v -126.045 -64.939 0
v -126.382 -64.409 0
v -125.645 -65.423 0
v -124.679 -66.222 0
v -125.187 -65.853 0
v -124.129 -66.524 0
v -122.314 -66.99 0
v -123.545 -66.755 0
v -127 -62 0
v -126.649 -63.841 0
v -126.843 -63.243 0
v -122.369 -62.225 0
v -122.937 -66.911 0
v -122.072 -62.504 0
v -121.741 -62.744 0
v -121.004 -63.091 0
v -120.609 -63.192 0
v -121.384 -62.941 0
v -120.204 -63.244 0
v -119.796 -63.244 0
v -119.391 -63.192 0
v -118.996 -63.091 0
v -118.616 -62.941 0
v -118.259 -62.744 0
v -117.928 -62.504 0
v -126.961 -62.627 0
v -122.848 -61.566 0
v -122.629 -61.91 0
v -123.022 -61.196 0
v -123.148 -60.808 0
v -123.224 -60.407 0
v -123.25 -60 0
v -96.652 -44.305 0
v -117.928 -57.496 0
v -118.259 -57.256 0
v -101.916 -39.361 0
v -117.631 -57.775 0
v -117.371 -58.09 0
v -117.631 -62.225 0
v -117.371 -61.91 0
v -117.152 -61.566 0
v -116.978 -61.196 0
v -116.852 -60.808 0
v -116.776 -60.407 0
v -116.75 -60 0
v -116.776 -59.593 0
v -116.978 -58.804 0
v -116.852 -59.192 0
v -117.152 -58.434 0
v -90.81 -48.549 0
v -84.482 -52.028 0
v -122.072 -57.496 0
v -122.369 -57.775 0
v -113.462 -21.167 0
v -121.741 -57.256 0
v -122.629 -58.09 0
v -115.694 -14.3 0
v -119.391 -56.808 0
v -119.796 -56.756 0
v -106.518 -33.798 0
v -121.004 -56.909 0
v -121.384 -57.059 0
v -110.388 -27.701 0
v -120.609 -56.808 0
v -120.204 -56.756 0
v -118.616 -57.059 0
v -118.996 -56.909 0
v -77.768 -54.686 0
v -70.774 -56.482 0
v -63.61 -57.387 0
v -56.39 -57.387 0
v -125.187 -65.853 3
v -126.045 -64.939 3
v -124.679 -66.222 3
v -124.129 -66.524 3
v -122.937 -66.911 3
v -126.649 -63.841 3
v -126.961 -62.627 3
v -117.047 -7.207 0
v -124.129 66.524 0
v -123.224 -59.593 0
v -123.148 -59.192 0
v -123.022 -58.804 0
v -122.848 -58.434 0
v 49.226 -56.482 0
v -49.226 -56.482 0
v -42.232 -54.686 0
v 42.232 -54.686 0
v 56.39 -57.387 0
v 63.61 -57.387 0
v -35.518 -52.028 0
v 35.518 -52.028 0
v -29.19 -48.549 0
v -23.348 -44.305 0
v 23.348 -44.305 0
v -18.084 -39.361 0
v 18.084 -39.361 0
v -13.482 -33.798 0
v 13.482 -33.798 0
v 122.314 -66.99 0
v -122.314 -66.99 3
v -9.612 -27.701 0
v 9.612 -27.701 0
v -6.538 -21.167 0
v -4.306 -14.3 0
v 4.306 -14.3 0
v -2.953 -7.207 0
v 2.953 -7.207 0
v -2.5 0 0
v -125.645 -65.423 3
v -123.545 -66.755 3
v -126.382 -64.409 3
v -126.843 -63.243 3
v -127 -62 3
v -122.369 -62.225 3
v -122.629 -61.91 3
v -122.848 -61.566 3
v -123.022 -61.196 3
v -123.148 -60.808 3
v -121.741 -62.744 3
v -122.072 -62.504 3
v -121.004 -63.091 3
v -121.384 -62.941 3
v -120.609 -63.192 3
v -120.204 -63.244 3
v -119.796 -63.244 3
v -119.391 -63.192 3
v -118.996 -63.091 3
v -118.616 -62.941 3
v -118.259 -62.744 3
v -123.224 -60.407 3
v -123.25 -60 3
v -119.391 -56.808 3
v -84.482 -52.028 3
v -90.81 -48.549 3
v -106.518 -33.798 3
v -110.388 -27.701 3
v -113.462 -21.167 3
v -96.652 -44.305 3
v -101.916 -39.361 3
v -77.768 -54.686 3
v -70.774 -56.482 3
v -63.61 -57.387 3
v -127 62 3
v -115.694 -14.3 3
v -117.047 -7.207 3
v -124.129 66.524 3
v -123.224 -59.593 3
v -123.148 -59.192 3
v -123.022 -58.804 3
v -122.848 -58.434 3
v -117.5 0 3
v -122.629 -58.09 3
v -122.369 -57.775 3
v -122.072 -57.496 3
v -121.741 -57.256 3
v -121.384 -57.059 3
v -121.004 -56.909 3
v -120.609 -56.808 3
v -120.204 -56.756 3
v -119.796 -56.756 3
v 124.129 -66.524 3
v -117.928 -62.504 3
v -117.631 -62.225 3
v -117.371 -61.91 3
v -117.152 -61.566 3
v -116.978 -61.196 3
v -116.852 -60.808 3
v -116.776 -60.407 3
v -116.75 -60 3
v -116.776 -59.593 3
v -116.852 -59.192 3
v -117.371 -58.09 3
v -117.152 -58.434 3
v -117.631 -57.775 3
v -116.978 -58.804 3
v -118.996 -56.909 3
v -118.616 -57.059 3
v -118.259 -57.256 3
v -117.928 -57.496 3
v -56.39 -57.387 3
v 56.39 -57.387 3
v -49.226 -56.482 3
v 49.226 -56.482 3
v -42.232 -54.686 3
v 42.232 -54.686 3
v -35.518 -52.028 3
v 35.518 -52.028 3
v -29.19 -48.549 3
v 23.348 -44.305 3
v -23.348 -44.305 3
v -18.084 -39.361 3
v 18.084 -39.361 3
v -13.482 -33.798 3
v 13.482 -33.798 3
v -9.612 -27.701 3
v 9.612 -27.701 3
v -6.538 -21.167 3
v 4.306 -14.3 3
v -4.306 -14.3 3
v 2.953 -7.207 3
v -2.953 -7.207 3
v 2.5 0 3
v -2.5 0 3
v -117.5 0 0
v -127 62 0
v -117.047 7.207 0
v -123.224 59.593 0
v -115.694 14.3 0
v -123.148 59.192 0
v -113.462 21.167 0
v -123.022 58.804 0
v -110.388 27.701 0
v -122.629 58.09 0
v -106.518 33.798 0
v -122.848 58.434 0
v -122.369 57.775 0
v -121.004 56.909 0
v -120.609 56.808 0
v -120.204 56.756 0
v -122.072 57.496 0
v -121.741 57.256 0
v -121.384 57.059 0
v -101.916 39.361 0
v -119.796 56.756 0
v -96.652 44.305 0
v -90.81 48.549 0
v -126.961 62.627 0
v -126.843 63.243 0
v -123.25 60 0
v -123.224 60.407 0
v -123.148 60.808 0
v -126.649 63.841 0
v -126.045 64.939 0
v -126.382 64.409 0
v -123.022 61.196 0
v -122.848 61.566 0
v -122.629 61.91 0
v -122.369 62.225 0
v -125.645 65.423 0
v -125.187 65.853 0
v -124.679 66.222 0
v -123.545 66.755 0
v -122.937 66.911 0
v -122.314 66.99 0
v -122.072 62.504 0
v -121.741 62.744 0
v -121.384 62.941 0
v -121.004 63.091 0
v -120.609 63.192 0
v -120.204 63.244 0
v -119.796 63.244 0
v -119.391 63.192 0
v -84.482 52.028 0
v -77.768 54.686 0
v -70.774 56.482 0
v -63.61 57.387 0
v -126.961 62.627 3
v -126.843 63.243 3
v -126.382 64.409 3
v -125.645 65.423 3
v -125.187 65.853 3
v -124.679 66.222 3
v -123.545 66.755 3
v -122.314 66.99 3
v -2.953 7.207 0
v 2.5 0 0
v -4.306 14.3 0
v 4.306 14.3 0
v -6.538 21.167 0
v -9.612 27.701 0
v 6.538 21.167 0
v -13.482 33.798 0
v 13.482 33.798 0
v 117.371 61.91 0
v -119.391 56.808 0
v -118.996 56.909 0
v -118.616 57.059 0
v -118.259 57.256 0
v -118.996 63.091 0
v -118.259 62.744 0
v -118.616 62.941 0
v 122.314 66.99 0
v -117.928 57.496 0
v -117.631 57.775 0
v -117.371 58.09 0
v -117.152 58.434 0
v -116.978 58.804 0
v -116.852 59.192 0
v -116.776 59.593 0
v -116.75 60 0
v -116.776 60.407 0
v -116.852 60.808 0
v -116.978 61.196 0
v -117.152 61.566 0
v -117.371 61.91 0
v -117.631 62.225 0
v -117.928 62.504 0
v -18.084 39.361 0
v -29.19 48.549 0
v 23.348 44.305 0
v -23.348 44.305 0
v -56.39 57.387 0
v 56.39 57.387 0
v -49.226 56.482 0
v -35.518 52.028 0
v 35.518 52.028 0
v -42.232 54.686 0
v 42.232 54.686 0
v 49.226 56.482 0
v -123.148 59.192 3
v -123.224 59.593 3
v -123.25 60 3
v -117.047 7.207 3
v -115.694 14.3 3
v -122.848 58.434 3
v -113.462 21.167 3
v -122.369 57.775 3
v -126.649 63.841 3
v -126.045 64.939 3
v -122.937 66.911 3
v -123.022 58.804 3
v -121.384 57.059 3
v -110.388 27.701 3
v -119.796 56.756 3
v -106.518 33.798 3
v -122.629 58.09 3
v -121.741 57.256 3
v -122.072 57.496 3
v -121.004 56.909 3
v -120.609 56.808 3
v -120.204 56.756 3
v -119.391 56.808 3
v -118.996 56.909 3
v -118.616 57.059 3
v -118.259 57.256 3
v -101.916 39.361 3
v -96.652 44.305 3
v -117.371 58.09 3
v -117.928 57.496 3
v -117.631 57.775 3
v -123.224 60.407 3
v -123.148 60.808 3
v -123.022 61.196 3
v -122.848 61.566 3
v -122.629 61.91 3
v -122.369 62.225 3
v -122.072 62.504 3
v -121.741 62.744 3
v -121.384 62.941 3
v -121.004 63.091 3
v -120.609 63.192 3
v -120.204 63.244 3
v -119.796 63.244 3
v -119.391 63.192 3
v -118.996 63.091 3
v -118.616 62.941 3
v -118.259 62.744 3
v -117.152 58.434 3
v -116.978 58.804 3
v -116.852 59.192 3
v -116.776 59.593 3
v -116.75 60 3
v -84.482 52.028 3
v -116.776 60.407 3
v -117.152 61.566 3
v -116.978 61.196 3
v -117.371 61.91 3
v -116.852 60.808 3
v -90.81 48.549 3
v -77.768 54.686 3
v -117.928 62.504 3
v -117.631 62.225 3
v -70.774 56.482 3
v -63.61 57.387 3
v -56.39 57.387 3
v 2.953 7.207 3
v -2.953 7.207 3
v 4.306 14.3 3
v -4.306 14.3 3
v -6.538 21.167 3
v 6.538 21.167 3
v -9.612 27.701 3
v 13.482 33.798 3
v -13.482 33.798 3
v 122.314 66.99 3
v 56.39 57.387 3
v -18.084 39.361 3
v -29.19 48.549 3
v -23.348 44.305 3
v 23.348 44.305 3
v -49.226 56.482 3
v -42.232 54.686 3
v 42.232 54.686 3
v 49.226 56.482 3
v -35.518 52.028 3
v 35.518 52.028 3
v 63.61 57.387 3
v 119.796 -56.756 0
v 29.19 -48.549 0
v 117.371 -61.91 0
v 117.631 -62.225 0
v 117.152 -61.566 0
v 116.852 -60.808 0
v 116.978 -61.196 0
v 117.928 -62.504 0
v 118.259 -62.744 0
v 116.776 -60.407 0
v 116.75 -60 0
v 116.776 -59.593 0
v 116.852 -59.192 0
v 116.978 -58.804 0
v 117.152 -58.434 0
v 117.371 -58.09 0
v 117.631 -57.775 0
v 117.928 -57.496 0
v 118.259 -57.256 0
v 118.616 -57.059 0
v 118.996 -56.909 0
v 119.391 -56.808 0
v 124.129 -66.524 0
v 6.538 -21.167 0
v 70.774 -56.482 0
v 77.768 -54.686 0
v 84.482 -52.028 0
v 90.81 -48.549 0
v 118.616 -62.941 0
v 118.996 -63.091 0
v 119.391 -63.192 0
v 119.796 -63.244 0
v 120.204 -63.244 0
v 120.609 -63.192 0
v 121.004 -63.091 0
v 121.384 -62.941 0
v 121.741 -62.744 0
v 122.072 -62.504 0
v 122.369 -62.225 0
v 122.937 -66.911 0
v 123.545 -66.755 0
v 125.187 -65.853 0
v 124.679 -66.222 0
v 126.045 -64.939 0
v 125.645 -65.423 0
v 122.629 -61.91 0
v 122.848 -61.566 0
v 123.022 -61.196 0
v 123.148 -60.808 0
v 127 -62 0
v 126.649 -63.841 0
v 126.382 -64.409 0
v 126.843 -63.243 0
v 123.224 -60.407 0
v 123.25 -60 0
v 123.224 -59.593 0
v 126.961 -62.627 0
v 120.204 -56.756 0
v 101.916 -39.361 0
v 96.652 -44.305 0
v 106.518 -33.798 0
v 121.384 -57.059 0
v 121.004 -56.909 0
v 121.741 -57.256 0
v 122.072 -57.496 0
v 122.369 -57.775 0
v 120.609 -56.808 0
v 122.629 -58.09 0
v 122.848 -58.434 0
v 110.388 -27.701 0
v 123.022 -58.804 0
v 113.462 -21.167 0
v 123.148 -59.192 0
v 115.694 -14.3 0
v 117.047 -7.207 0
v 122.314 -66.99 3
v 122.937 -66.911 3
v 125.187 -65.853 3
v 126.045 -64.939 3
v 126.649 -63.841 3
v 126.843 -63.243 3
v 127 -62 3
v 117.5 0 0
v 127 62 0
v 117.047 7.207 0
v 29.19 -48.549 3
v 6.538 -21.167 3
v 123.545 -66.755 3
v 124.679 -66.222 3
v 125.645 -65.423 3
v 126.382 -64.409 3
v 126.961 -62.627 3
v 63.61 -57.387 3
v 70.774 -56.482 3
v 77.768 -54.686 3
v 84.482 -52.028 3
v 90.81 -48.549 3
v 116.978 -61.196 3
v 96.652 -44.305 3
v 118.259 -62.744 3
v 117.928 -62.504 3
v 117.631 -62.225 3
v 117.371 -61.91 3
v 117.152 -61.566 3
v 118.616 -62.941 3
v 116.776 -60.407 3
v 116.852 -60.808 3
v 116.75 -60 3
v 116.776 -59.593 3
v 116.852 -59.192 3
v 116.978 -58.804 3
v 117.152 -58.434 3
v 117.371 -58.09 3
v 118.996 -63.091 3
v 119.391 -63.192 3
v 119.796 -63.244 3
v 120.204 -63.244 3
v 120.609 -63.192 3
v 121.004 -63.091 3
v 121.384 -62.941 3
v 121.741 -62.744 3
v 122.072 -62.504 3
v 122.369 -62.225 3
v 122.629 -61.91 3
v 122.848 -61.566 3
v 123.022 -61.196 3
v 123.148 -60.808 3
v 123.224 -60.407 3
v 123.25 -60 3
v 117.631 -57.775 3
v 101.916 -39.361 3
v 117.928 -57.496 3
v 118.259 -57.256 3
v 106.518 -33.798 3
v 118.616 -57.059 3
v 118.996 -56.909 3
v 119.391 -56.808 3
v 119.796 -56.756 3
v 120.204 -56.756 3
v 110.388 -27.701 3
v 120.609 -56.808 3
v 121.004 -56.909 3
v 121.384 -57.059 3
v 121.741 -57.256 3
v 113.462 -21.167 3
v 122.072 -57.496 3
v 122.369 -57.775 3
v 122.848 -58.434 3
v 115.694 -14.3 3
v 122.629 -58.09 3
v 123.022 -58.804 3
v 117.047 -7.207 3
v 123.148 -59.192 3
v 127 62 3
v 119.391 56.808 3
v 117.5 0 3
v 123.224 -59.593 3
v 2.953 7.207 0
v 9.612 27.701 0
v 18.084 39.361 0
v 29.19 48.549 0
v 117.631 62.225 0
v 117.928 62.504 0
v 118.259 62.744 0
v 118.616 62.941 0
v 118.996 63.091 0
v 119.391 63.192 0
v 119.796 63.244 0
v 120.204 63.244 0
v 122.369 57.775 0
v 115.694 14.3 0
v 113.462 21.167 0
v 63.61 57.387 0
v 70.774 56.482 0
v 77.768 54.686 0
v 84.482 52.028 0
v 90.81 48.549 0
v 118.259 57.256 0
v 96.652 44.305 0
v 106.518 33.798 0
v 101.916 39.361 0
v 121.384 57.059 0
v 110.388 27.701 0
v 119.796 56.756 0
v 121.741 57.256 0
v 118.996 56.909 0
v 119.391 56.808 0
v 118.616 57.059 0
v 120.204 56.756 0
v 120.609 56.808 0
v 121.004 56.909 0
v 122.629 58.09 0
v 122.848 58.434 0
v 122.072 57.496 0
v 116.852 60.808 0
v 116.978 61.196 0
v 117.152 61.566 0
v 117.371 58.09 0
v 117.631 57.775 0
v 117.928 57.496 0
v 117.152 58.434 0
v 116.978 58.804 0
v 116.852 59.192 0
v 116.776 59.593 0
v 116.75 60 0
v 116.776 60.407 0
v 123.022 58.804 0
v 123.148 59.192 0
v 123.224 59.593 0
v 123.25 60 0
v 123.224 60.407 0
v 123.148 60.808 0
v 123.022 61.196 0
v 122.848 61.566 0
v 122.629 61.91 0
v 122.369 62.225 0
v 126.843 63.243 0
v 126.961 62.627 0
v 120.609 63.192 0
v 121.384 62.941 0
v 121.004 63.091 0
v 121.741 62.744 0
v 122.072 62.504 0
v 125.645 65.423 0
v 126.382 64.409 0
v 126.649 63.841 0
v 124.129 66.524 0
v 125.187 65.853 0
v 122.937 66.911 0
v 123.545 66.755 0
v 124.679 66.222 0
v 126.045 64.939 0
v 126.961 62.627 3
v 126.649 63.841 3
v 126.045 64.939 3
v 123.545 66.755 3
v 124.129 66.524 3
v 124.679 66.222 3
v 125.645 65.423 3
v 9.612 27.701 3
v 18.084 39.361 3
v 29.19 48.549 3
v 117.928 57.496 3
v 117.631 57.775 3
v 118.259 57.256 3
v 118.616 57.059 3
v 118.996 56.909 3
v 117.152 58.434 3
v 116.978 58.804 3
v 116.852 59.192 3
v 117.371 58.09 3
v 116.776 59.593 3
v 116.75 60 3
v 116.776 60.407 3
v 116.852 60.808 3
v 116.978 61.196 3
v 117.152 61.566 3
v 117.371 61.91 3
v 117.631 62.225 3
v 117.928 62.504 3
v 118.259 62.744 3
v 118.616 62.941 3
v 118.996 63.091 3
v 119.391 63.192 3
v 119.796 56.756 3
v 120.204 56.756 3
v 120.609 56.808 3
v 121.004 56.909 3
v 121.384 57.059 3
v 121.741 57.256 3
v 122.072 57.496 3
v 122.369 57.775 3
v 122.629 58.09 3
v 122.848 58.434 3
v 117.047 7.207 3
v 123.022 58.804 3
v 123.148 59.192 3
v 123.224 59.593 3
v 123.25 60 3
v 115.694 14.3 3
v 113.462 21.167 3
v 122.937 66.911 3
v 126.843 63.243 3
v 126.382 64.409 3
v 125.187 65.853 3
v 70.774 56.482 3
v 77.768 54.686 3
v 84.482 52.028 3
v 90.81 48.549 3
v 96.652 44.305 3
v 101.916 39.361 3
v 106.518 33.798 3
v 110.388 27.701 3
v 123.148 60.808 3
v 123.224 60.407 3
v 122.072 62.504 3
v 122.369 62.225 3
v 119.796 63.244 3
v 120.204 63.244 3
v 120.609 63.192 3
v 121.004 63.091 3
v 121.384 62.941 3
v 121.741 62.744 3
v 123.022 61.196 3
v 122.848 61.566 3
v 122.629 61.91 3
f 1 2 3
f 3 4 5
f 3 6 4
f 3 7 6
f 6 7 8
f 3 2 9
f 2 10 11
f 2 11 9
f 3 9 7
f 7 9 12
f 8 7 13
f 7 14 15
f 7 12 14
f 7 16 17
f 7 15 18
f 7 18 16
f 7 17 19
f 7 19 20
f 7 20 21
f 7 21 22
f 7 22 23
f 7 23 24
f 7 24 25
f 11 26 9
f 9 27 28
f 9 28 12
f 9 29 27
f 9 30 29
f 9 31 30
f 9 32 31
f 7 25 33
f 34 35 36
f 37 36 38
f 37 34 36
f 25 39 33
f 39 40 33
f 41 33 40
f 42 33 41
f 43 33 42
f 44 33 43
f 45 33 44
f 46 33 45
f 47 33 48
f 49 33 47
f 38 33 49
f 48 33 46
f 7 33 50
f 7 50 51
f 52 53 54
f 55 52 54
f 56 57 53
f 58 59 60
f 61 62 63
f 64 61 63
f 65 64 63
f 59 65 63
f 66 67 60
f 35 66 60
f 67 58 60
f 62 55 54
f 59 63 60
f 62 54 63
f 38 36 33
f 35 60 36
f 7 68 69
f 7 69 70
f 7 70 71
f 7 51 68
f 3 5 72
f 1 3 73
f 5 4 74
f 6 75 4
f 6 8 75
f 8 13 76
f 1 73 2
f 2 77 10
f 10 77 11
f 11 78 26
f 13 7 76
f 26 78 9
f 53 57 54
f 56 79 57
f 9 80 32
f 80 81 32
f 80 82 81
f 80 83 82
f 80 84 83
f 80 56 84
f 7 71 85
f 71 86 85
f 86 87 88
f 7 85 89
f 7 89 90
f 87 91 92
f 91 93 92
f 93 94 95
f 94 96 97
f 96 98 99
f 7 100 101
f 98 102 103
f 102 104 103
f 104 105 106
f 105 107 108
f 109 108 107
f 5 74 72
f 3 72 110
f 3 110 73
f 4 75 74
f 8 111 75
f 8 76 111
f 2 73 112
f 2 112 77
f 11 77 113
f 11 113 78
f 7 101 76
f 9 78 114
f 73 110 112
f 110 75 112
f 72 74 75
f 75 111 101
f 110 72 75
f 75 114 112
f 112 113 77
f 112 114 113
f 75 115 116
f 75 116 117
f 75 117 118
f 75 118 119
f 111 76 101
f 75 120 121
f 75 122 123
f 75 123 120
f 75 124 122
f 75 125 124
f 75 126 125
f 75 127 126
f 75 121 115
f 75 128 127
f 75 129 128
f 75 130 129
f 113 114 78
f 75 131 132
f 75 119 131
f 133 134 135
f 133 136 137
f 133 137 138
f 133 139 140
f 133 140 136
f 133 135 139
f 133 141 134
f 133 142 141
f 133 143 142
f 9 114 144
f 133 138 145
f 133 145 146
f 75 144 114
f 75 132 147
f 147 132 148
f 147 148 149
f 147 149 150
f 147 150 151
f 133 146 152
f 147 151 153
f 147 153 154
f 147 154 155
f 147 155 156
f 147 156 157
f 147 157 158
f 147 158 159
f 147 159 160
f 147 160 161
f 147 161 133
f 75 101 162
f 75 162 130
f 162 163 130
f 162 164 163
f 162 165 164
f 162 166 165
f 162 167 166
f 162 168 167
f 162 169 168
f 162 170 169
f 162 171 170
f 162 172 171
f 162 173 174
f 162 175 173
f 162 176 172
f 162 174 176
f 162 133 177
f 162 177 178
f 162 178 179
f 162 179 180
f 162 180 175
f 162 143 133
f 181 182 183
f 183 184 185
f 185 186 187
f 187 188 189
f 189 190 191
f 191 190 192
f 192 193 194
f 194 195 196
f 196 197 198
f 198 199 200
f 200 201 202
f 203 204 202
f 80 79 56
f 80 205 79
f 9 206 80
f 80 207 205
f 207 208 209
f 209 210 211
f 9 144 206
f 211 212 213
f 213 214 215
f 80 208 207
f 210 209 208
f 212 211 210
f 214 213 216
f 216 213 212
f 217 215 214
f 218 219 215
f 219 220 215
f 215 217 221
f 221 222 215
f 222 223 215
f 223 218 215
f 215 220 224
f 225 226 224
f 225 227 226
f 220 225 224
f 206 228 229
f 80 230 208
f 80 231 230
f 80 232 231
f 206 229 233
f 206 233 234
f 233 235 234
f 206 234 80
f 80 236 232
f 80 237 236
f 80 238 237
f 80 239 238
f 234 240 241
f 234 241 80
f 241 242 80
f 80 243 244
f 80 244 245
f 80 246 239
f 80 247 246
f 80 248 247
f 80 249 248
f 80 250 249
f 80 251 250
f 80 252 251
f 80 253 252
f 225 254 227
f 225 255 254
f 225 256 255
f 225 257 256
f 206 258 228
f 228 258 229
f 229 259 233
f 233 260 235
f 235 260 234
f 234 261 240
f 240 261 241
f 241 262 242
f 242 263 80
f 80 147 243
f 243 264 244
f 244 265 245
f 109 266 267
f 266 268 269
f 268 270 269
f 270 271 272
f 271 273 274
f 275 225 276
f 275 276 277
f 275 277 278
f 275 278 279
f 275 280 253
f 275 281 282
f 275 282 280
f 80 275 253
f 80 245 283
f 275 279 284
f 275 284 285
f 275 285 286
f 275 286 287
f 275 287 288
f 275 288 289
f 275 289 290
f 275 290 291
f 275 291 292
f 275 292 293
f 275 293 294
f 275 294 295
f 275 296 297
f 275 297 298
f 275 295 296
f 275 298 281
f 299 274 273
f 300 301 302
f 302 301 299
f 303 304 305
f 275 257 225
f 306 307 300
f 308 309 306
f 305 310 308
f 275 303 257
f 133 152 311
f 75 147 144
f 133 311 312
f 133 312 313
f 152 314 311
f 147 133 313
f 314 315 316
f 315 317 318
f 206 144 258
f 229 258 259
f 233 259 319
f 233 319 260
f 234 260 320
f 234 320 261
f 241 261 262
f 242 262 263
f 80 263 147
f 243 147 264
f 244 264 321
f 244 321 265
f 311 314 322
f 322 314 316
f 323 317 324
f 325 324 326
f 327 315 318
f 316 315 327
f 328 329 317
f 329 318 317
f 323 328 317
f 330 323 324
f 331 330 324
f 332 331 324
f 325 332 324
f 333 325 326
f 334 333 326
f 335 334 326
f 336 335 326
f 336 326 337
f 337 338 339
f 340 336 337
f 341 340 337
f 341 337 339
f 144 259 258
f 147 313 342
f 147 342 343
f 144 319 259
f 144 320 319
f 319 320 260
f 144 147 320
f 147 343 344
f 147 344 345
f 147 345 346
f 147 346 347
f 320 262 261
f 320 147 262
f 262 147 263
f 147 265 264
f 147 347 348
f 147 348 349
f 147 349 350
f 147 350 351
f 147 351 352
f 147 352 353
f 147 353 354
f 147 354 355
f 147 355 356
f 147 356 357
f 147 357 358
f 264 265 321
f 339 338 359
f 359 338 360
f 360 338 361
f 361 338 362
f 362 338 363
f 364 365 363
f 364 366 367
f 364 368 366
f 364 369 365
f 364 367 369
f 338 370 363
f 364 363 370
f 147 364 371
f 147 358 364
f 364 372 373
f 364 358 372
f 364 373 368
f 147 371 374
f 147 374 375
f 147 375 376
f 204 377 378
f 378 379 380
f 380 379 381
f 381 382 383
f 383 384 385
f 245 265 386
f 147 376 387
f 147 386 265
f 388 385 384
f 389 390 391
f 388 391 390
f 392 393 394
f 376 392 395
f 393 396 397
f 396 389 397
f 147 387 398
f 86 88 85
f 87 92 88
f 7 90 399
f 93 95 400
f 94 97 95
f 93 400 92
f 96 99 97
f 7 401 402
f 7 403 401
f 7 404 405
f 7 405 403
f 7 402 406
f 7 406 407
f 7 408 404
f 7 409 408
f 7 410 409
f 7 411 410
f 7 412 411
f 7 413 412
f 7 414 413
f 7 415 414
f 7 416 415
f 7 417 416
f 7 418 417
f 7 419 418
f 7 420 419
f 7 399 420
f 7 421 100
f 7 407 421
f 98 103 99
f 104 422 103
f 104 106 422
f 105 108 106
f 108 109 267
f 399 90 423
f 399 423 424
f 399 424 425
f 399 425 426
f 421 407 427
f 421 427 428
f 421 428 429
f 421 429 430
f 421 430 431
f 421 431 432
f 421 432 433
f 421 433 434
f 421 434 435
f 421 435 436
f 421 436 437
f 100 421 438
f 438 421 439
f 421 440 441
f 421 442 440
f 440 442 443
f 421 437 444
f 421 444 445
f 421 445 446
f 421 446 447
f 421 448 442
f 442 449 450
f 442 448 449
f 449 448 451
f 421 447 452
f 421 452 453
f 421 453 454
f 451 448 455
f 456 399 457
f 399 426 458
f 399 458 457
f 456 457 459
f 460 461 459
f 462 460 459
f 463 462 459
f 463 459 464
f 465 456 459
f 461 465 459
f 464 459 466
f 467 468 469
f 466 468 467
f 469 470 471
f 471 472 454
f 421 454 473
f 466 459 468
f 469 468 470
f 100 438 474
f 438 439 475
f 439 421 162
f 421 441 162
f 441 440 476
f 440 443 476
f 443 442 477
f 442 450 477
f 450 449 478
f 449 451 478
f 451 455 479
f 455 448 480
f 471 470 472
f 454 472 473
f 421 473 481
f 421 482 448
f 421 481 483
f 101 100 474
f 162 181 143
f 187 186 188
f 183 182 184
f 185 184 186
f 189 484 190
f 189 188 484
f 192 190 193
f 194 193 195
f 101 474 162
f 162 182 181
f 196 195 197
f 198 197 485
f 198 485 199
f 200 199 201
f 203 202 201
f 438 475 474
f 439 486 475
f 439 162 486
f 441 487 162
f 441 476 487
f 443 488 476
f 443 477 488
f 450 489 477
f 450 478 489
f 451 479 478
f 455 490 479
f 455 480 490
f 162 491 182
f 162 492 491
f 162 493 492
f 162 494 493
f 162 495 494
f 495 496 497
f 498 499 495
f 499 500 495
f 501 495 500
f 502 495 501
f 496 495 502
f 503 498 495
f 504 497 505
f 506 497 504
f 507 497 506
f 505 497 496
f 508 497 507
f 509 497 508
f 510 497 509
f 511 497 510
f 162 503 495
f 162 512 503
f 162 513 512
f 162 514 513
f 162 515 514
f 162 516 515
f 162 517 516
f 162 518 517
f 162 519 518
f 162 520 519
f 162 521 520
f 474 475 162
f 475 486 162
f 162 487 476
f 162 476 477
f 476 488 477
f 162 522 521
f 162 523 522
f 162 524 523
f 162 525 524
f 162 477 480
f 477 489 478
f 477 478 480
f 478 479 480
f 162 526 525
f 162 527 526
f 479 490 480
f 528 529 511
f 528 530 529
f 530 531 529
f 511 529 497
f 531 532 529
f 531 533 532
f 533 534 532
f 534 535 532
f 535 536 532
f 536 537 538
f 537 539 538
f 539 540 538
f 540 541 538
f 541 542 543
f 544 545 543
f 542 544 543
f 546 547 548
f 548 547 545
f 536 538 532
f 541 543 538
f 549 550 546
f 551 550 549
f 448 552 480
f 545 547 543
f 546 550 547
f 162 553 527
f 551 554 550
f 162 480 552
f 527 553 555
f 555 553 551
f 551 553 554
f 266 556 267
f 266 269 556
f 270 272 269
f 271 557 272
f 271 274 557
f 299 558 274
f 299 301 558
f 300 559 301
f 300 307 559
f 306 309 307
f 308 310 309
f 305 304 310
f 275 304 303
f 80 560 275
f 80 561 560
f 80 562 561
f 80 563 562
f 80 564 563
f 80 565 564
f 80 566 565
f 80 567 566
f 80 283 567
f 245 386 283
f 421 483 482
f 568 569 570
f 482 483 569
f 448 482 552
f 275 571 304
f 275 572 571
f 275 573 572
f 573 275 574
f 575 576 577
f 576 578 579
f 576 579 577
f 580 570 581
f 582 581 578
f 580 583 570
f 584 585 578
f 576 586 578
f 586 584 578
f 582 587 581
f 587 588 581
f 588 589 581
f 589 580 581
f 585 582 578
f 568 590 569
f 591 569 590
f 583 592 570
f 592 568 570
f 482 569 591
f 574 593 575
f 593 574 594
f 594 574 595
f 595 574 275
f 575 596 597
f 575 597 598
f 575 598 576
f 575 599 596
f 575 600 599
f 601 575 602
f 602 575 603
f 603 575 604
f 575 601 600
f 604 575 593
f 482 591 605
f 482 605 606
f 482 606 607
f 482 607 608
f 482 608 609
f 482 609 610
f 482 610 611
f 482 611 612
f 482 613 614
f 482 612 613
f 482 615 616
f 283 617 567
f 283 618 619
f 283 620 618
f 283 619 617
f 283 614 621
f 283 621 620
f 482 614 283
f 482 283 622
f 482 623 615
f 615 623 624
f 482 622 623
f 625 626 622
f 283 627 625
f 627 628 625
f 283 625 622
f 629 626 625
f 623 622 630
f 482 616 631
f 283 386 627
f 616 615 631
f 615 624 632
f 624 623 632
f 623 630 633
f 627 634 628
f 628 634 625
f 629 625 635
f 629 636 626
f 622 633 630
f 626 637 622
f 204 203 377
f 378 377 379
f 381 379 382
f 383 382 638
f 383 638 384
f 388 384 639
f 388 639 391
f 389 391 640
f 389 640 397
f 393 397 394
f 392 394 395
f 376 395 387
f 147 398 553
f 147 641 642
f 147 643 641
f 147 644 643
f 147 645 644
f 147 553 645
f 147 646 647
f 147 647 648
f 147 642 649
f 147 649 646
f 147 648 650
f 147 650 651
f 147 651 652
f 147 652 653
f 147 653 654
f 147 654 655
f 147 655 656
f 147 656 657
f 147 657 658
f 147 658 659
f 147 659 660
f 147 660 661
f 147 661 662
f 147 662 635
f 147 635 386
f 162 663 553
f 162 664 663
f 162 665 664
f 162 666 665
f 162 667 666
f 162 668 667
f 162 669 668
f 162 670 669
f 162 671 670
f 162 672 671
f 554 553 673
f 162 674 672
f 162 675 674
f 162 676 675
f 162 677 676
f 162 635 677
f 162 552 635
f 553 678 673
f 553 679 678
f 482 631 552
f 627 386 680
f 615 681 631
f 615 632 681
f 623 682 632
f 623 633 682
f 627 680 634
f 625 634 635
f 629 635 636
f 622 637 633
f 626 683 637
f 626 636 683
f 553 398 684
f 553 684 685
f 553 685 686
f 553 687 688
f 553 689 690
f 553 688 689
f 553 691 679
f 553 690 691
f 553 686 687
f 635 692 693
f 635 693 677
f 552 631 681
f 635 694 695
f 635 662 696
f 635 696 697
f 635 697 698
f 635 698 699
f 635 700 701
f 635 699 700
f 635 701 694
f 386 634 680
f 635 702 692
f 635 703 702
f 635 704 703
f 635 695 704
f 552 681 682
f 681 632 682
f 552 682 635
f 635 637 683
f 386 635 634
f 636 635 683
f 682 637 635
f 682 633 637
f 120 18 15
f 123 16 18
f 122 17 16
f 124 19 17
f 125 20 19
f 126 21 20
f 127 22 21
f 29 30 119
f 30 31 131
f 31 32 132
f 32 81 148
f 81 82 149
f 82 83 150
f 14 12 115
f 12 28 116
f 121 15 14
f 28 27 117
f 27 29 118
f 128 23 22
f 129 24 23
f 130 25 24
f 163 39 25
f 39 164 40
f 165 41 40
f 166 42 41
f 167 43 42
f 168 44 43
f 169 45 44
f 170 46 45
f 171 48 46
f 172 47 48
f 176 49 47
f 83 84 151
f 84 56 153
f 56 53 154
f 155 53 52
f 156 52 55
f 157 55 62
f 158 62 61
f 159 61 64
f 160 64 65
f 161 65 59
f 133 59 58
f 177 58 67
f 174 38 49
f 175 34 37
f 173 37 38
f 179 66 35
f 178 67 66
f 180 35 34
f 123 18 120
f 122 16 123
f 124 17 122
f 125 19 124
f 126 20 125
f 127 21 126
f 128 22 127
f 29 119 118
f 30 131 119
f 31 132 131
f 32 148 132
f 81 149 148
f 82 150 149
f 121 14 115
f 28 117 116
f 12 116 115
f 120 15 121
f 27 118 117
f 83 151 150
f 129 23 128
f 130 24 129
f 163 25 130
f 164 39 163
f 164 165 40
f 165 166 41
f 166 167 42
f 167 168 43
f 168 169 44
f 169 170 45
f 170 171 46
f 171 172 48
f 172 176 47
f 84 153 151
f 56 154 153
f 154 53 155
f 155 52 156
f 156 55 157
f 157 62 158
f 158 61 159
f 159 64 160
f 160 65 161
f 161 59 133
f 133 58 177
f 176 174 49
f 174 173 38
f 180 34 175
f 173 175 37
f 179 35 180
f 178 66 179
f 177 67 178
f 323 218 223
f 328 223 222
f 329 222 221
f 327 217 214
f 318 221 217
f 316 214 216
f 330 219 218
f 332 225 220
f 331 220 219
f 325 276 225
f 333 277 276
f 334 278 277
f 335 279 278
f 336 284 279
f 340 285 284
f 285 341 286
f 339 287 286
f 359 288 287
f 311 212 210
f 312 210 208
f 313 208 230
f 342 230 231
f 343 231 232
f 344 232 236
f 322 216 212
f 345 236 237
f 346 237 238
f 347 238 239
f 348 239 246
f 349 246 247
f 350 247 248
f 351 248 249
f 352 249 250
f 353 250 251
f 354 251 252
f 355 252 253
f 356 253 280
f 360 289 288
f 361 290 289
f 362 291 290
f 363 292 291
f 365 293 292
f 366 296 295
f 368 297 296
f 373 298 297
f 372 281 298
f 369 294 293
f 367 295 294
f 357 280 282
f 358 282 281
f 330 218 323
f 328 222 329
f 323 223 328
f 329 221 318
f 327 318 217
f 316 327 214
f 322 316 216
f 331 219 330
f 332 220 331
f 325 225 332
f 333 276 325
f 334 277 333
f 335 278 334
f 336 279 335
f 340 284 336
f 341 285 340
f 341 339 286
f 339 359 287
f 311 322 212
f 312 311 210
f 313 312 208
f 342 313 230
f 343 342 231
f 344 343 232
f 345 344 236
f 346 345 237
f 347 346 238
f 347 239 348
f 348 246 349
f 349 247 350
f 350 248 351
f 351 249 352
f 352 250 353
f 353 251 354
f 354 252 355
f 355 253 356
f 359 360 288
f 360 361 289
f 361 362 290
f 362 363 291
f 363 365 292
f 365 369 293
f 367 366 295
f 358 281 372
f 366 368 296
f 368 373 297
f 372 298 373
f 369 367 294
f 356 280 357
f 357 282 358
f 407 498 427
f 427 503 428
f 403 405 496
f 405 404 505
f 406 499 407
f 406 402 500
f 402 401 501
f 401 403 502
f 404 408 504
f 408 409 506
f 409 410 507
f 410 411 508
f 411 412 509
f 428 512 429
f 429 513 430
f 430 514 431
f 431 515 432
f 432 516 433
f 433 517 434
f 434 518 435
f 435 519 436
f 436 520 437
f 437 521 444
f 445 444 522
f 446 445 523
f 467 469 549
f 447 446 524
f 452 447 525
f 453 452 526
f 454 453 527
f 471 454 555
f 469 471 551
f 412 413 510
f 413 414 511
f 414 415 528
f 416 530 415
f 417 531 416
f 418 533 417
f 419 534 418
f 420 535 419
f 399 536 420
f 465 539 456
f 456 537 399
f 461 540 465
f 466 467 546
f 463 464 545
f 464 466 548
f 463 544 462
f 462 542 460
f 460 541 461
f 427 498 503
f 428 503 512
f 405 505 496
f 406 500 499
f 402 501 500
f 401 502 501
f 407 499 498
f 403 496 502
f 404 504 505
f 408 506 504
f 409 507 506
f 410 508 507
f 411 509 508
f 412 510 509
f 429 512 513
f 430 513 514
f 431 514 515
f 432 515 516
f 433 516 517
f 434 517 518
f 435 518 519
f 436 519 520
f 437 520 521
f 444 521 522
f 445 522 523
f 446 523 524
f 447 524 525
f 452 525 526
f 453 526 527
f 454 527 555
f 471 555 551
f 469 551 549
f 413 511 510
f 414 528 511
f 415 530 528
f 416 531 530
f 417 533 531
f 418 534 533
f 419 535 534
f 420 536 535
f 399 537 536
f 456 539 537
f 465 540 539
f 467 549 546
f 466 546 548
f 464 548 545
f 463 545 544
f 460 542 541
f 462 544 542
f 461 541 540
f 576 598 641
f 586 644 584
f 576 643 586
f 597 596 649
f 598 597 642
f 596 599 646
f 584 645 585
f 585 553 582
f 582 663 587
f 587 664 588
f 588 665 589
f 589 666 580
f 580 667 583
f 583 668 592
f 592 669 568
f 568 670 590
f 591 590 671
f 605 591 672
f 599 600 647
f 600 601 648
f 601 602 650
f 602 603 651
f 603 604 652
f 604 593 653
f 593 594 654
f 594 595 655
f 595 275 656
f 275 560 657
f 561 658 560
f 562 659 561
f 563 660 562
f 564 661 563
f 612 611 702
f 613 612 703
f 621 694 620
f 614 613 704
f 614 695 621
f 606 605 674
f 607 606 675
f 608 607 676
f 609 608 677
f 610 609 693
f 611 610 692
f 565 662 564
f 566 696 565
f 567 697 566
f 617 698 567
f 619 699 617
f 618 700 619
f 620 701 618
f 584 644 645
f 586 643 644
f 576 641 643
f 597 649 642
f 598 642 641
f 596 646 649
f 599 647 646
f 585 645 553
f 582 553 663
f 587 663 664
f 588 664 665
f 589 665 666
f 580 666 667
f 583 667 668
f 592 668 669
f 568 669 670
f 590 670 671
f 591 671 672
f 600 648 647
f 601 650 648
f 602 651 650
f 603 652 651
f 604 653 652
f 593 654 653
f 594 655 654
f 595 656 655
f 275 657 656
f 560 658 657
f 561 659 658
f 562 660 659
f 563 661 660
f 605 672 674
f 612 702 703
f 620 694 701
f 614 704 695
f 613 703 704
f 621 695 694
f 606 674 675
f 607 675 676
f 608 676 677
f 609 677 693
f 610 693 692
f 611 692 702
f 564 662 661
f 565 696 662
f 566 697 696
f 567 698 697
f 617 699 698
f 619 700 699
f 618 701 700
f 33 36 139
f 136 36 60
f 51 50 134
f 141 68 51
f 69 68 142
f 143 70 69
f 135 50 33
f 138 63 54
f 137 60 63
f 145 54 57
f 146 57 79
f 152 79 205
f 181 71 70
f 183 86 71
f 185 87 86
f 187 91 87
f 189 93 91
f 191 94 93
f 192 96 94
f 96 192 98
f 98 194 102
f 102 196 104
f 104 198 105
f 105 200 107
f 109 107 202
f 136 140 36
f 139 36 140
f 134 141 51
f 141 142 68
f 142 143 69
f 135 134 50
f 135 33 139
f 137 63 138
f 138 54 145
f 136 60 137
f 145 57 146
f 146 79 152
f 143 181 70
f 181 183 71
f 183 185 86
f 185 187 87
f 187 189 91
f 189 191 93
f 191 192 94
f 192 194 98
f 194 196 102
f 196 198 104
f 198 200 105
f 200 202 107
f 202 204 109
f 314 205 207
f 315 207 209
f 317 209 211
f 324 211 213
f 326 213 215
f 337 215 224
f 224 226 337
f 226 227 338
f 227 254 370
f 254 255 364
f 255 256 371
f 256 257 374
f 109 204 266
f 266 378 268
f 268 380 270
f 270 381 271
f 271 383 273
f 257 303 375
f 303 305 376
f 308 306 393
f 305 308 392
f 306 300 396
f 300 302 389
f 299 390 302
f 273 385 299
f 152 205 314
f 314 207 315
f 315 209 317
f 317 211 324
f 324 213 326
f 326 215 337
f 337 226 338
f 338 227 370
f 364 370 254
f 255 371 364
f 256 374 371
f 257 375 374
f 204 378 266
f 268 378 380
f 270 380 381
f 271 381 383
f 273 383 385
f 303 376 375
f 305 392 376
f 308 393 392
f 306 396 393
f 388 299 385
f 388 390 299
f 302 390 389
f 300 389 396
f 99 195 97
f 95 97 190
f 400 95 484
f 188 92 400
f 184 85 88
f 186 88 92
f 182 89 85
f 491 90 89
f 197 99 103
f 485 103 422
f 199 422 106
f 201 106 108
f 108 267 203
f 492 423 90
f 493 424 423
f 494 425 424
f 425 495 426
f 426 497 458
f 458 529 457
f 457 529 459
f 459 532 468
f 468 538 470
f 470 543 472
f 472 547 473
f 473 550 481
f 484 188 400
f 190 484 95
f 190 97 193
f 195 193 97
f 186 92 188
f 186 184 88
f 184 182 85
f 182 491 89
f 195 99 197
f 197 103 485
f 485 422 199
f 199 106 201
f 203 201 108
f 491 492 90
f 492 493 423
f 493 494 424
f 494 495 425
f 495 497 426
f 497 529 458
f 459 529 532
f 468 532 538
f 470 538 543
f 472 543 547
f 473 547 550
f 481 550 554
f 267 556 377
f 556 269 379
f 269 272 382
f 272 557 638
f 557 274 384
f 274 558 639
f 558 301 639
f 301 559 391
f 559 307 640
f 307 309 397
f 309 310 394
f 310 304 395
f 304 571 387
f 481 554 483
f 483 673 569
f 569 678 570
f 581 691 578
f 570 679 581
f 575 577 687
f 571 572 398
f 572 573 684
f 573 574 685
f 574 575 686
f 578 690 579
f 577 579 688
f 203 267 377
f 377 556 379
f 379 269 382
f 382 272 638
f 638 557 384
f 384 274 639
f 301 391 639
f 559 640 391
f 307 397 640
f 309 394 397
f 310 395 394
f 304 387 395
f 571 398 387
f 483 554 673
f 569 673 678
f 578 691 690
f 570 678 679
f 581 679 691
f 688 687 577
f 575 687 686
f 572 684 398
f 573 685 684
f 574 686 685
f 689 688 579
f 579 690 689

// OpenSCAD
$fn = 50;

difference() {
	union() {
		hull() {
			translate(v = [-122.0, 62.0, 0]) {
				cylinder(h = 3, r = 5);
			}
			translate(v = [122.0, 62.0, 0]) {
				cylinder(h = 3, r = 5);
			}
			translate(v = [-122.0, -62.0, 0]) {
				cylinder(h = 3, r = 5);
			}
			translate(v = [122.0, -62.0, 0]) {
				cylinder(h = 3, r = 5);
			}
		}
	}
	union() {
		translate(v = [-120.0, -60.0, -100.0]) {
			cylinder(h = 200, r = 3.25);
		}
		translate(v = [-120.0, 60.0, -100.0]) {
			cylinder(h = 200, r = 3.25);
		}
		translate(v = [120.0, -60.0, -100.0]) {
			cylinder(h = 200, r = 3.25);
		}
		translate(v = [120.0, 60.0, -100.0]) {
			cylinder(h = 200, r = 3.25);
		}
		translate(v = [-120.0, -60.0, -100.0]) {
			cylinder(h = 200, r = 1.8);
		}
		translate(v = [-120.0, 60.0, -100.0]) {
			cylinder(h = 200, r = 1.8);
		}
		translate(v = [120.0, -60.0, -100.0]) {
			cylinder(h = 200, r = 1.8);
		}
		translate(v = [120.0, 60.0, -100.0]) {
			cylinder(h = 200, r = 1.8);
		}
		translate(v = [-60.0, 0, 0.0]) {
			cylinder(h = 3, r = 57.5);
		}
		translate(v = [60.0, 0, 0.0]) {
			cylinder(h = 3, r = 57.5);
		}
	}
}
